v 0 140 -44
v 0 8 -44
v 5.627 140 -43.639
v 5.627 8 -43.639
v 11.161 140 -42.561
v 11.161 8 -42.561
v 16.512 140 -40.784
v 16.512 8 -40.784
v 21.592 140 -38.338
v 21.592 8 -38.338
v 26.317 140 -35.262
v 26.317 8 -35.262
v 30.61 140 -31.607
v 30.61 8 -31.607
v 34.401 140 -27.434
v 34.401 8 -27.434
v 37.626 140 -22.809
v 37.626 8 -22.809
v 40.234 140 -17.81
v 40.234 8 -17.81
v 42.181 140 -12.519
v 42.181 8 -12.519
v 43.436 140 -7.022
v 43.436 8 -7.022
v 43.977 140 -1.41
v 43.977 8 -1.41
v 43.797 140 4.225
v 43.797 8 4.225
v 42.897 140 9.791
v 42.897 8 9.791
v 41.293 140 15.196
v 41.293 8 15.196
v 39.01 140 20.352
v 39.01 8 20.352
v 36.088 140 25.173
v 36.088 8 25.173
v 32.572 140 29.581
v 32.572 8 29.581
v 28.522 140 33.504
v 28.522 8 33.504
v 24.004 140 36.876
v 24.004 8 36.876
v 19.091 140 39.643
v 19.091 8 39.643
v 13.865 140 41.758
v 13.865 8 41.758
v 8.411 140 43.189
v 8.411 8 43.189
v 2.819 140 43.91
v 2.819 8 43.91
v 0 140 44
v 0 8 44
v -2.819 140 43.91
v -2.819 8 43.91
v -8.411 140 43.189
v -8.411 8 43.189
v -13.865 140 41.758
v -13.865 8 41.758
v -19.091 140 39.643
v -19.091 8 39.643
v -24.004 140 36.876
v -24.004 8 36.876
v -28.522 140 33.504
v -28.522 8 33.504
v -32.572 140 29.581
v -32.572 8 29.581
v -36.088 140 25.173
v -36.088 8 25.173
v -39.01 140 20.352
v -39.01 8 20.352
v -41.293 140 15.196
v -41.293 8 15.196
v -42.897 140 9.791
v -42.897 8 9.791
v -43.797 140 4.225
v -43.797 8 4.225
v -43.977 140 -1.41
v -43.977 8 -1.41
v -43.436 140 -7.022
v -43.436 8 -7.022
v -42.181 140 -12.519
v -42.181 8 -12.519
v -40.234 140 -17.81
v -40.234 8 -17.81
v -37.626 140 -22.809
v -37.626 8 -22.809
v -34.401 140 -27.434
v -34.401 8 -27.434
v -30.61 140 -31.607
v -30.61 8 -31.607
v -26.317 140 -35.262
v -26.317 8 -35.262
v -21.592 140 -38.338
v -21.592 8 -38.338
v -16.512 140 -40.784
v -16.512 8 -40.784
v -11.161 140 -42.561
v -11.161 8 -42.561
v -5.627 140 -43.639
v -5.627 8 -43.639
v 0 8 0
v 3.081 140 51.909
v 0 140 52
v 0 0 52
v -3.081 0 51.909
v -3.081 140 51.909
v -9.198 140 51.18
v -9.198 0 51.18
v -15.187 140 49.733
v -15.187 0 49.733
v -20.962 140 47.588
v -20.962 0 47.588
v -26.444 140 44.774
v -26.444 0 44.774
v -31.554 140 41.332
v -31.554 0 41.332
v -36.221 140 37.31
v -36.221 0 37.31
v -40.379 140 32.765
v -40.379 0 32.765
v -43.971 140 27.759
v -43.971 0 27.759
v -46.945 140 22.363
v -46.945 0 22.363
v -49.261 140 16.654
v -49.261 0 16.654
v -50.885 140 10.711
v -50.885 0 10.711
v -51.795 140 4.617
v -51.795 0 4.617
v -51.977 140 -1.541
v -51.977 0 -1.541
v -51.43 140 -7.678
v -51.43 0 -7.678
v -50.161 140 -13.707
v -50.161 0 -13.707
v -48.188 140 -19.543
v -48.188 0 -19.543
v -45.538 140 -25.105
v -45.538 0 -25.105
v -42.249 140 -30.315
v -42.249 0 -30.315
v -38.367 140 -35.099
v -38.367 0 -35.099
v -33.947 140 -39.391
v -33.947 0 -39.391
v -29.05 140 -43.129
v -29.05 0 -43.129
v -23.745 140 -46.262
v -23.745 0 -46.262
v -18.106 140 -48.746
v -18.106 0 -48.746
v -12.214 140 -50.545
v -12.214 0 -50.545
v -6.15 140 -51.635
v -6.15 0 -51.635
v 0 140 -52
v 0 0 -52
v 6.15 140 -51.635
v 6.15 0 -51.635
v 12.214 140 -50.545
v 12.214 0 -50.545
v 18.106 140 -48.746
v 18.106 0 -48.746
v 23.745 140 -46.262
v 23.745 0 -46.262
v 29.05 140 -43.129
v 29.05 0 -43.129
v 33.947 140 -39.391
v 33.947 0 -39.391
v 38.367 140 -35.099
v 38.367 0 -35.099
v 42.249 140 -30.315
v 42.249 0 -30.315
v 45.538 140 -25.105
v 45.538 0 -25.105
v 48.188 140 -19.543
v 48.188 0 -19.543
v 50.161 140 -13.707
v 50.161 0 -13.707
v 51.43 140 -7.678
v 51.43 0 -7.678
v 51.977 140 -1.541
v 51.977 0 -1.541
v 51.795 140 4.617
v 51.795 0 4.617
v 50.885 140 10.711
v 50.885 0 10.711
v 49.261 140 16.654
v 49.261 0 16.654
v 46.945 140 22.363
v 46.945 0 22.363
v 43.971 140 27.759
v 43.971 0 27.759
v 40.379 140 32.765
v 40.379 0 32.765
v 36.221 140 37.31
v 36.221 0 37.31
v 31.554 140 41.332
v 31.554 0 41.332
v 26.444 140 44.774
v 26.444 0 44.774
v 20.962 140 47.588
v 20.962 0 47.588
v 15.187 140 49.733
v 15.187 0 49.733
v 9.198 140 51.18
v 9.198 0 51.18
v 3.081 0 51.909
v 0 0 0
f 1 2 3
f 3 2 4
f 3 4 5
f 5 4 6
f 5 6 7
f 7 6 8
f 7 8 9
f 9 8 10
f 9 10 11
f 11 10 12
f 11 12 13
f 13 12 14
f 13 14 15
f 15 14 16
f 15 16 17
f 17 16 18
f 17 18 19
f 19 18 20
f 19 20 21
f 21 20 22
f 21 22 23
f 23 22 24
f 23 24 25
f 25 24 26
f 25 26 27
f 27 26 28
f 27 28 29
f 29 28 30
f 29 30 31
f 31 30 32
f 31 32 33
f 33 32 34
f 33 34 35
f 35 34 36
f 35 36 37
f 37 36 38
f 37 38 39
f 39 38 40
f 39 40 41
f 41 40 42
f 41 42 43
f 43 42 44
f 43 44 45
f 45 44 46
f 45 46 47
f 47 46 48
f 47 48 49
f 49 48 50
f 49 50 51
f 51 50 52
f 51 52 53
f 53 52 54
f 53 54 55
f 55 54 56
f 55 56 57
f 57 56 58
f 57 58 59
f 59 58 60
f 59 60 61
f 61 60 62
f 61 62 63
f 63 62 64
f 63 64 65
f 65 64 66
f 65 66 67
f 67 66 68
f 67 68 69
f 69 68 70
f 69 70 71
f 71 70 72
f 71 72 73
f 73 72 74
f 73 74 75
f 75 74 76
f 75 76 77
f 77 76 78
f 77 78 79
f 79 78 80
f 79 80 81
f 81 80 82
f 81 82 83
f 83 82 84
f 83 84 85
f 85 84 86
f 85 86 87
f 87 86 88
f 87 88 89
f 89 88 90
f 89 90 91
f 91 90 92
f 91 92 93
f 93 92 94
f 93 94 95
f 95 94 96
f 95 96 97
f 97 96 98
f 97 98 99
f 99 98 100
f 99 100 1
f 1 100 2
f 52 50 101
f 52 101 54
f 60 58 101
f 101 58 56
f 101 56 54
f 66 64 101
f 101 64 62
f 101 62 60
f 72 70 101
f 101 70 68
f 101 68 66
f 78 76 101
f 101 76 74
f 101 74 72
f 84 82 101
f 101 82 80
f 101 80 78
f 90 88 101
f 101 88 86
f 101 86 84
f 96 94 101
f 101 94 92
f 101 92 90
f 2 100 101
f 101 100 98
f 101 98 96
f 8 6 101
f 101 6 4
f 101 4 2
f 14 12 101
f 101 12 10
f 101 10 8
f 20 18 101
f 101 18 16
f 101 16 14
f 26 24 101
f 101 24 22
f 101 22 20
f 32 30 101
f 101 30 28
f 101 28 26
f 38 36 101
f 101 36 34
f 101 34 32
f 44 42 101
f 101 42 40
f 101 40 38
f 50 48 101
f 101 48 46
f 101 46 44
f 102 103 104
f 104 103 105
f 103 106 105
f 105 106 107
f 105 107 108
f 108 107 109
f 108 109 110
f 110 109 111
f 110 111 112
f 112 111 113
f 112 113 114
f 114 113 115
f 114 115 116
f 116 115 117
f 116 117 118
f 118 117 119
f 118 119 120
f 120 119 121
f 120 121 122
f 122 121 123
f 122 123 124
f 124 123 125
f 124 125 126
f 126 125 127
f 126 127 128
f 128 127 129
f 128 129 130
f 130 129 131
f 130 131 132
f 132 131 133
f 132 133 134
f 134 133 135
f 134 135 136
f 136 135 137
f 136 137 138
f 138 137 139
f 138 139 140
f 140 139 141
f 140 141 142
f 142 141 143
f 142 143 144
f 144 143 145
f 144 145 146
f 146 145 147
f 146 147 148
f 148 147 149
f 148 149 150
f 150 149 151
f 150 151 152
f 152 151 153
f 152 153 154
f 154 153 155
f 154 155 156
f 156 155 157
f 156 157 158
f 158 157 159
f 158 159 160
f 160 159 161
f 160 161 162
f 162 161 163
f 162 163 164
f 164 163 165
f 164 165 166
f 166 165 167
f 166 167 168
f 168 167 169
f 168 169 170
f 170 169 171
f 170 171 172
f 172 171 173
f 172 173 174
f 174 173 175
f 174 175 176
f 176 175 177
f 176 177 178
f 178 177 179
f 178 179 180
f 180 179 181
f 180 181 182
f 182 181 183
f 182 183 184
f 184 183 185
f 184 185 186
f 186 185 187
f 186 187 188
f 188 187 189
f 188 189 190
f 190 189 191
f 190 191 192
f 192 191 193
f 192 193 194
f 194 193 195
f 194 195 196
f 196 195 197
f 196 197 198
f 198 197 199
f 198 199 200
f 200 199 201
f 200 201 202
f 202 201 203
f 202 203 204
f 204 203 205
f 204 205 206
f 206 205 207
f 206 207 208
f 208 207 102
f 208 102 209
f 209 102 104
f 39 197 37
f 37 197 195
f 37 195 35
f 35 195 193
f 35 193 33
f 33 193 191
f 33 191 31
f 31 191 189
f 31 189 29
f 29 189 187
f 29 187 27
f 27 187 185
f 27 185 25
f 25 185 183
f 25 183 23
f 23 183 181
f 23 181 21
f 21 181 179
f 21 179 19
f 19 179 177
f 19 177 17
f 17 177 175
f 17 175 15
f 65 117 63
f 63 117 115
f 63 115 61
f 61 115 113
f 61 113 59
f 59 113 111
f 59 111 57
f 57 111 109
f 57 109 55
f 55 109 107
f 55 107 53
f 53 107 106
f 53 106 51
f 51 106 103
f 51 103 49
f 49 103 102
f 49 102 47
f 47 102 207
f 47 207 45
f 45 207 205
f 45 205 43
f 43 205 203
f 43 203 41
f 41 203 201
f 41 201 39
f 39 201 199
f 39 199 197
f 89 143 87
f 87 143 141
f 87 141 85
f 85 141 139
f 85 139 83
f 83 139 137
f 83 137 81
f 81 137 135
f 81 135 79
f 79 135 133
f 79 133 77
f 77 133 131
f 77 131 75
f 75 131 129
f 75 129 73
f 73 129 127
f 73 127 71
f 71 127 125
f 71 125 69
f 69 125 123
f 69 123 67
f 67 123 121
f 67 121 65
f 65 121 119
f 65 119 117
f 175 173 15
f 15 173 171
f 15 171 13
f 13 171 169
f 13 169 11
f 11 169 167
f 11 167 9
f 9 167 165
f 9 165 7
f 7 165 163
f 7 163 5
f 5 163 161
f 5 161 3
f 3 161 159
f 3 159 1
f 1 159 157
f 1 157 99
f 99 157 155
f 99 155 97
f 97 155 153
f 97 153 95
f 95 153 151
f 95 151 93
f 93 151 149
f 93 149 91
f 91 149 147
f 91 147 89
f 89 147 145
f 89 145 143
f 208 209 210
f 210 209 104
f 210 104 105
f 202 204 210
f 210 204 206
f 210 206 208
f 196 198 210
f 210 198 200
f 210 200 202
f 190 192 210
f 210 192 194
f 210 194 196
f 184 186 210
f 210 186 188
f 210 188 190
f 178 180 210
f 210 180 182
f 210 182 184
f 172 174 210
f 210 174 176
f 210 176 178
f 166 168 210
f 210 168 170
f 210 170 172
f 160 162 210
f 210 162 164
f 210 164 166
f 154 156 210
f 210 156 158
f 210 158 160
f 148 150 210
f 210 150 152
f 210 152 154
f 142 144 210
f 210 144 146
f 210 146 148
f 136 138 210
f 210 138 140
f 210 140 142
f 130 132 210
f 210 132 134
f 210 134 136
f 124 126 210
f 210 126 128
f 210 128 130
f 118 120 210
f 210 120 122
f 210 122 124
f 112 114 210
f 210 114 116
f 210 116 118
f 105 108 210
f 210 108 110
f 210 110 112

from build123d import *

# Parameters (mm, degrees)
SKETCH1_R           = 52
BOSS_EXTRUDE1_DEPTH = 140
SHELL1_T            = 8
CUT_EXTRUDE1_START  = -40
SKETCH3_R           = 44
CUT_EXTRUDE1_DEPTH  = 40


with BuildPart() as part:
    # Sketch1 → Boss-Extrude1 (new body)
    with BuildSketch(Plane(origin=(0, 0, 0), x_dir=(1, 0, 0), z_dir=(0, 1, 0))):
        with Locations(Location((0, 0, 0), (0, 0, 270))):
            Circle(SKETCH1_R)
    extrude(amount=BOSS_EXTRUDE1_DEPTH)

    # Shell1 (no face opened: a closed hollow body)
    add(offset(amount=-SHELL1_T, mode=Mode.PRIVATE), mode=Mode.SUBTRACT)

    # Sketch3 → Cut-Extrude1 (cut)
    with BuildSketch(Plane(origin=(0, 140, 0), x_dir=(1, 0, 0), z_dir=(0, 1, 0)).offset(CUT_EXTRUDE1_START)):
        with Locations(Location((0, 0, 0), (0, 0, 270))):
            Circle(SKETCH3_R)
    extrude(amount=CUT_EXTRUDE1_DEPTH, mode=Mode.SUBTRACT)


solid = part.part
